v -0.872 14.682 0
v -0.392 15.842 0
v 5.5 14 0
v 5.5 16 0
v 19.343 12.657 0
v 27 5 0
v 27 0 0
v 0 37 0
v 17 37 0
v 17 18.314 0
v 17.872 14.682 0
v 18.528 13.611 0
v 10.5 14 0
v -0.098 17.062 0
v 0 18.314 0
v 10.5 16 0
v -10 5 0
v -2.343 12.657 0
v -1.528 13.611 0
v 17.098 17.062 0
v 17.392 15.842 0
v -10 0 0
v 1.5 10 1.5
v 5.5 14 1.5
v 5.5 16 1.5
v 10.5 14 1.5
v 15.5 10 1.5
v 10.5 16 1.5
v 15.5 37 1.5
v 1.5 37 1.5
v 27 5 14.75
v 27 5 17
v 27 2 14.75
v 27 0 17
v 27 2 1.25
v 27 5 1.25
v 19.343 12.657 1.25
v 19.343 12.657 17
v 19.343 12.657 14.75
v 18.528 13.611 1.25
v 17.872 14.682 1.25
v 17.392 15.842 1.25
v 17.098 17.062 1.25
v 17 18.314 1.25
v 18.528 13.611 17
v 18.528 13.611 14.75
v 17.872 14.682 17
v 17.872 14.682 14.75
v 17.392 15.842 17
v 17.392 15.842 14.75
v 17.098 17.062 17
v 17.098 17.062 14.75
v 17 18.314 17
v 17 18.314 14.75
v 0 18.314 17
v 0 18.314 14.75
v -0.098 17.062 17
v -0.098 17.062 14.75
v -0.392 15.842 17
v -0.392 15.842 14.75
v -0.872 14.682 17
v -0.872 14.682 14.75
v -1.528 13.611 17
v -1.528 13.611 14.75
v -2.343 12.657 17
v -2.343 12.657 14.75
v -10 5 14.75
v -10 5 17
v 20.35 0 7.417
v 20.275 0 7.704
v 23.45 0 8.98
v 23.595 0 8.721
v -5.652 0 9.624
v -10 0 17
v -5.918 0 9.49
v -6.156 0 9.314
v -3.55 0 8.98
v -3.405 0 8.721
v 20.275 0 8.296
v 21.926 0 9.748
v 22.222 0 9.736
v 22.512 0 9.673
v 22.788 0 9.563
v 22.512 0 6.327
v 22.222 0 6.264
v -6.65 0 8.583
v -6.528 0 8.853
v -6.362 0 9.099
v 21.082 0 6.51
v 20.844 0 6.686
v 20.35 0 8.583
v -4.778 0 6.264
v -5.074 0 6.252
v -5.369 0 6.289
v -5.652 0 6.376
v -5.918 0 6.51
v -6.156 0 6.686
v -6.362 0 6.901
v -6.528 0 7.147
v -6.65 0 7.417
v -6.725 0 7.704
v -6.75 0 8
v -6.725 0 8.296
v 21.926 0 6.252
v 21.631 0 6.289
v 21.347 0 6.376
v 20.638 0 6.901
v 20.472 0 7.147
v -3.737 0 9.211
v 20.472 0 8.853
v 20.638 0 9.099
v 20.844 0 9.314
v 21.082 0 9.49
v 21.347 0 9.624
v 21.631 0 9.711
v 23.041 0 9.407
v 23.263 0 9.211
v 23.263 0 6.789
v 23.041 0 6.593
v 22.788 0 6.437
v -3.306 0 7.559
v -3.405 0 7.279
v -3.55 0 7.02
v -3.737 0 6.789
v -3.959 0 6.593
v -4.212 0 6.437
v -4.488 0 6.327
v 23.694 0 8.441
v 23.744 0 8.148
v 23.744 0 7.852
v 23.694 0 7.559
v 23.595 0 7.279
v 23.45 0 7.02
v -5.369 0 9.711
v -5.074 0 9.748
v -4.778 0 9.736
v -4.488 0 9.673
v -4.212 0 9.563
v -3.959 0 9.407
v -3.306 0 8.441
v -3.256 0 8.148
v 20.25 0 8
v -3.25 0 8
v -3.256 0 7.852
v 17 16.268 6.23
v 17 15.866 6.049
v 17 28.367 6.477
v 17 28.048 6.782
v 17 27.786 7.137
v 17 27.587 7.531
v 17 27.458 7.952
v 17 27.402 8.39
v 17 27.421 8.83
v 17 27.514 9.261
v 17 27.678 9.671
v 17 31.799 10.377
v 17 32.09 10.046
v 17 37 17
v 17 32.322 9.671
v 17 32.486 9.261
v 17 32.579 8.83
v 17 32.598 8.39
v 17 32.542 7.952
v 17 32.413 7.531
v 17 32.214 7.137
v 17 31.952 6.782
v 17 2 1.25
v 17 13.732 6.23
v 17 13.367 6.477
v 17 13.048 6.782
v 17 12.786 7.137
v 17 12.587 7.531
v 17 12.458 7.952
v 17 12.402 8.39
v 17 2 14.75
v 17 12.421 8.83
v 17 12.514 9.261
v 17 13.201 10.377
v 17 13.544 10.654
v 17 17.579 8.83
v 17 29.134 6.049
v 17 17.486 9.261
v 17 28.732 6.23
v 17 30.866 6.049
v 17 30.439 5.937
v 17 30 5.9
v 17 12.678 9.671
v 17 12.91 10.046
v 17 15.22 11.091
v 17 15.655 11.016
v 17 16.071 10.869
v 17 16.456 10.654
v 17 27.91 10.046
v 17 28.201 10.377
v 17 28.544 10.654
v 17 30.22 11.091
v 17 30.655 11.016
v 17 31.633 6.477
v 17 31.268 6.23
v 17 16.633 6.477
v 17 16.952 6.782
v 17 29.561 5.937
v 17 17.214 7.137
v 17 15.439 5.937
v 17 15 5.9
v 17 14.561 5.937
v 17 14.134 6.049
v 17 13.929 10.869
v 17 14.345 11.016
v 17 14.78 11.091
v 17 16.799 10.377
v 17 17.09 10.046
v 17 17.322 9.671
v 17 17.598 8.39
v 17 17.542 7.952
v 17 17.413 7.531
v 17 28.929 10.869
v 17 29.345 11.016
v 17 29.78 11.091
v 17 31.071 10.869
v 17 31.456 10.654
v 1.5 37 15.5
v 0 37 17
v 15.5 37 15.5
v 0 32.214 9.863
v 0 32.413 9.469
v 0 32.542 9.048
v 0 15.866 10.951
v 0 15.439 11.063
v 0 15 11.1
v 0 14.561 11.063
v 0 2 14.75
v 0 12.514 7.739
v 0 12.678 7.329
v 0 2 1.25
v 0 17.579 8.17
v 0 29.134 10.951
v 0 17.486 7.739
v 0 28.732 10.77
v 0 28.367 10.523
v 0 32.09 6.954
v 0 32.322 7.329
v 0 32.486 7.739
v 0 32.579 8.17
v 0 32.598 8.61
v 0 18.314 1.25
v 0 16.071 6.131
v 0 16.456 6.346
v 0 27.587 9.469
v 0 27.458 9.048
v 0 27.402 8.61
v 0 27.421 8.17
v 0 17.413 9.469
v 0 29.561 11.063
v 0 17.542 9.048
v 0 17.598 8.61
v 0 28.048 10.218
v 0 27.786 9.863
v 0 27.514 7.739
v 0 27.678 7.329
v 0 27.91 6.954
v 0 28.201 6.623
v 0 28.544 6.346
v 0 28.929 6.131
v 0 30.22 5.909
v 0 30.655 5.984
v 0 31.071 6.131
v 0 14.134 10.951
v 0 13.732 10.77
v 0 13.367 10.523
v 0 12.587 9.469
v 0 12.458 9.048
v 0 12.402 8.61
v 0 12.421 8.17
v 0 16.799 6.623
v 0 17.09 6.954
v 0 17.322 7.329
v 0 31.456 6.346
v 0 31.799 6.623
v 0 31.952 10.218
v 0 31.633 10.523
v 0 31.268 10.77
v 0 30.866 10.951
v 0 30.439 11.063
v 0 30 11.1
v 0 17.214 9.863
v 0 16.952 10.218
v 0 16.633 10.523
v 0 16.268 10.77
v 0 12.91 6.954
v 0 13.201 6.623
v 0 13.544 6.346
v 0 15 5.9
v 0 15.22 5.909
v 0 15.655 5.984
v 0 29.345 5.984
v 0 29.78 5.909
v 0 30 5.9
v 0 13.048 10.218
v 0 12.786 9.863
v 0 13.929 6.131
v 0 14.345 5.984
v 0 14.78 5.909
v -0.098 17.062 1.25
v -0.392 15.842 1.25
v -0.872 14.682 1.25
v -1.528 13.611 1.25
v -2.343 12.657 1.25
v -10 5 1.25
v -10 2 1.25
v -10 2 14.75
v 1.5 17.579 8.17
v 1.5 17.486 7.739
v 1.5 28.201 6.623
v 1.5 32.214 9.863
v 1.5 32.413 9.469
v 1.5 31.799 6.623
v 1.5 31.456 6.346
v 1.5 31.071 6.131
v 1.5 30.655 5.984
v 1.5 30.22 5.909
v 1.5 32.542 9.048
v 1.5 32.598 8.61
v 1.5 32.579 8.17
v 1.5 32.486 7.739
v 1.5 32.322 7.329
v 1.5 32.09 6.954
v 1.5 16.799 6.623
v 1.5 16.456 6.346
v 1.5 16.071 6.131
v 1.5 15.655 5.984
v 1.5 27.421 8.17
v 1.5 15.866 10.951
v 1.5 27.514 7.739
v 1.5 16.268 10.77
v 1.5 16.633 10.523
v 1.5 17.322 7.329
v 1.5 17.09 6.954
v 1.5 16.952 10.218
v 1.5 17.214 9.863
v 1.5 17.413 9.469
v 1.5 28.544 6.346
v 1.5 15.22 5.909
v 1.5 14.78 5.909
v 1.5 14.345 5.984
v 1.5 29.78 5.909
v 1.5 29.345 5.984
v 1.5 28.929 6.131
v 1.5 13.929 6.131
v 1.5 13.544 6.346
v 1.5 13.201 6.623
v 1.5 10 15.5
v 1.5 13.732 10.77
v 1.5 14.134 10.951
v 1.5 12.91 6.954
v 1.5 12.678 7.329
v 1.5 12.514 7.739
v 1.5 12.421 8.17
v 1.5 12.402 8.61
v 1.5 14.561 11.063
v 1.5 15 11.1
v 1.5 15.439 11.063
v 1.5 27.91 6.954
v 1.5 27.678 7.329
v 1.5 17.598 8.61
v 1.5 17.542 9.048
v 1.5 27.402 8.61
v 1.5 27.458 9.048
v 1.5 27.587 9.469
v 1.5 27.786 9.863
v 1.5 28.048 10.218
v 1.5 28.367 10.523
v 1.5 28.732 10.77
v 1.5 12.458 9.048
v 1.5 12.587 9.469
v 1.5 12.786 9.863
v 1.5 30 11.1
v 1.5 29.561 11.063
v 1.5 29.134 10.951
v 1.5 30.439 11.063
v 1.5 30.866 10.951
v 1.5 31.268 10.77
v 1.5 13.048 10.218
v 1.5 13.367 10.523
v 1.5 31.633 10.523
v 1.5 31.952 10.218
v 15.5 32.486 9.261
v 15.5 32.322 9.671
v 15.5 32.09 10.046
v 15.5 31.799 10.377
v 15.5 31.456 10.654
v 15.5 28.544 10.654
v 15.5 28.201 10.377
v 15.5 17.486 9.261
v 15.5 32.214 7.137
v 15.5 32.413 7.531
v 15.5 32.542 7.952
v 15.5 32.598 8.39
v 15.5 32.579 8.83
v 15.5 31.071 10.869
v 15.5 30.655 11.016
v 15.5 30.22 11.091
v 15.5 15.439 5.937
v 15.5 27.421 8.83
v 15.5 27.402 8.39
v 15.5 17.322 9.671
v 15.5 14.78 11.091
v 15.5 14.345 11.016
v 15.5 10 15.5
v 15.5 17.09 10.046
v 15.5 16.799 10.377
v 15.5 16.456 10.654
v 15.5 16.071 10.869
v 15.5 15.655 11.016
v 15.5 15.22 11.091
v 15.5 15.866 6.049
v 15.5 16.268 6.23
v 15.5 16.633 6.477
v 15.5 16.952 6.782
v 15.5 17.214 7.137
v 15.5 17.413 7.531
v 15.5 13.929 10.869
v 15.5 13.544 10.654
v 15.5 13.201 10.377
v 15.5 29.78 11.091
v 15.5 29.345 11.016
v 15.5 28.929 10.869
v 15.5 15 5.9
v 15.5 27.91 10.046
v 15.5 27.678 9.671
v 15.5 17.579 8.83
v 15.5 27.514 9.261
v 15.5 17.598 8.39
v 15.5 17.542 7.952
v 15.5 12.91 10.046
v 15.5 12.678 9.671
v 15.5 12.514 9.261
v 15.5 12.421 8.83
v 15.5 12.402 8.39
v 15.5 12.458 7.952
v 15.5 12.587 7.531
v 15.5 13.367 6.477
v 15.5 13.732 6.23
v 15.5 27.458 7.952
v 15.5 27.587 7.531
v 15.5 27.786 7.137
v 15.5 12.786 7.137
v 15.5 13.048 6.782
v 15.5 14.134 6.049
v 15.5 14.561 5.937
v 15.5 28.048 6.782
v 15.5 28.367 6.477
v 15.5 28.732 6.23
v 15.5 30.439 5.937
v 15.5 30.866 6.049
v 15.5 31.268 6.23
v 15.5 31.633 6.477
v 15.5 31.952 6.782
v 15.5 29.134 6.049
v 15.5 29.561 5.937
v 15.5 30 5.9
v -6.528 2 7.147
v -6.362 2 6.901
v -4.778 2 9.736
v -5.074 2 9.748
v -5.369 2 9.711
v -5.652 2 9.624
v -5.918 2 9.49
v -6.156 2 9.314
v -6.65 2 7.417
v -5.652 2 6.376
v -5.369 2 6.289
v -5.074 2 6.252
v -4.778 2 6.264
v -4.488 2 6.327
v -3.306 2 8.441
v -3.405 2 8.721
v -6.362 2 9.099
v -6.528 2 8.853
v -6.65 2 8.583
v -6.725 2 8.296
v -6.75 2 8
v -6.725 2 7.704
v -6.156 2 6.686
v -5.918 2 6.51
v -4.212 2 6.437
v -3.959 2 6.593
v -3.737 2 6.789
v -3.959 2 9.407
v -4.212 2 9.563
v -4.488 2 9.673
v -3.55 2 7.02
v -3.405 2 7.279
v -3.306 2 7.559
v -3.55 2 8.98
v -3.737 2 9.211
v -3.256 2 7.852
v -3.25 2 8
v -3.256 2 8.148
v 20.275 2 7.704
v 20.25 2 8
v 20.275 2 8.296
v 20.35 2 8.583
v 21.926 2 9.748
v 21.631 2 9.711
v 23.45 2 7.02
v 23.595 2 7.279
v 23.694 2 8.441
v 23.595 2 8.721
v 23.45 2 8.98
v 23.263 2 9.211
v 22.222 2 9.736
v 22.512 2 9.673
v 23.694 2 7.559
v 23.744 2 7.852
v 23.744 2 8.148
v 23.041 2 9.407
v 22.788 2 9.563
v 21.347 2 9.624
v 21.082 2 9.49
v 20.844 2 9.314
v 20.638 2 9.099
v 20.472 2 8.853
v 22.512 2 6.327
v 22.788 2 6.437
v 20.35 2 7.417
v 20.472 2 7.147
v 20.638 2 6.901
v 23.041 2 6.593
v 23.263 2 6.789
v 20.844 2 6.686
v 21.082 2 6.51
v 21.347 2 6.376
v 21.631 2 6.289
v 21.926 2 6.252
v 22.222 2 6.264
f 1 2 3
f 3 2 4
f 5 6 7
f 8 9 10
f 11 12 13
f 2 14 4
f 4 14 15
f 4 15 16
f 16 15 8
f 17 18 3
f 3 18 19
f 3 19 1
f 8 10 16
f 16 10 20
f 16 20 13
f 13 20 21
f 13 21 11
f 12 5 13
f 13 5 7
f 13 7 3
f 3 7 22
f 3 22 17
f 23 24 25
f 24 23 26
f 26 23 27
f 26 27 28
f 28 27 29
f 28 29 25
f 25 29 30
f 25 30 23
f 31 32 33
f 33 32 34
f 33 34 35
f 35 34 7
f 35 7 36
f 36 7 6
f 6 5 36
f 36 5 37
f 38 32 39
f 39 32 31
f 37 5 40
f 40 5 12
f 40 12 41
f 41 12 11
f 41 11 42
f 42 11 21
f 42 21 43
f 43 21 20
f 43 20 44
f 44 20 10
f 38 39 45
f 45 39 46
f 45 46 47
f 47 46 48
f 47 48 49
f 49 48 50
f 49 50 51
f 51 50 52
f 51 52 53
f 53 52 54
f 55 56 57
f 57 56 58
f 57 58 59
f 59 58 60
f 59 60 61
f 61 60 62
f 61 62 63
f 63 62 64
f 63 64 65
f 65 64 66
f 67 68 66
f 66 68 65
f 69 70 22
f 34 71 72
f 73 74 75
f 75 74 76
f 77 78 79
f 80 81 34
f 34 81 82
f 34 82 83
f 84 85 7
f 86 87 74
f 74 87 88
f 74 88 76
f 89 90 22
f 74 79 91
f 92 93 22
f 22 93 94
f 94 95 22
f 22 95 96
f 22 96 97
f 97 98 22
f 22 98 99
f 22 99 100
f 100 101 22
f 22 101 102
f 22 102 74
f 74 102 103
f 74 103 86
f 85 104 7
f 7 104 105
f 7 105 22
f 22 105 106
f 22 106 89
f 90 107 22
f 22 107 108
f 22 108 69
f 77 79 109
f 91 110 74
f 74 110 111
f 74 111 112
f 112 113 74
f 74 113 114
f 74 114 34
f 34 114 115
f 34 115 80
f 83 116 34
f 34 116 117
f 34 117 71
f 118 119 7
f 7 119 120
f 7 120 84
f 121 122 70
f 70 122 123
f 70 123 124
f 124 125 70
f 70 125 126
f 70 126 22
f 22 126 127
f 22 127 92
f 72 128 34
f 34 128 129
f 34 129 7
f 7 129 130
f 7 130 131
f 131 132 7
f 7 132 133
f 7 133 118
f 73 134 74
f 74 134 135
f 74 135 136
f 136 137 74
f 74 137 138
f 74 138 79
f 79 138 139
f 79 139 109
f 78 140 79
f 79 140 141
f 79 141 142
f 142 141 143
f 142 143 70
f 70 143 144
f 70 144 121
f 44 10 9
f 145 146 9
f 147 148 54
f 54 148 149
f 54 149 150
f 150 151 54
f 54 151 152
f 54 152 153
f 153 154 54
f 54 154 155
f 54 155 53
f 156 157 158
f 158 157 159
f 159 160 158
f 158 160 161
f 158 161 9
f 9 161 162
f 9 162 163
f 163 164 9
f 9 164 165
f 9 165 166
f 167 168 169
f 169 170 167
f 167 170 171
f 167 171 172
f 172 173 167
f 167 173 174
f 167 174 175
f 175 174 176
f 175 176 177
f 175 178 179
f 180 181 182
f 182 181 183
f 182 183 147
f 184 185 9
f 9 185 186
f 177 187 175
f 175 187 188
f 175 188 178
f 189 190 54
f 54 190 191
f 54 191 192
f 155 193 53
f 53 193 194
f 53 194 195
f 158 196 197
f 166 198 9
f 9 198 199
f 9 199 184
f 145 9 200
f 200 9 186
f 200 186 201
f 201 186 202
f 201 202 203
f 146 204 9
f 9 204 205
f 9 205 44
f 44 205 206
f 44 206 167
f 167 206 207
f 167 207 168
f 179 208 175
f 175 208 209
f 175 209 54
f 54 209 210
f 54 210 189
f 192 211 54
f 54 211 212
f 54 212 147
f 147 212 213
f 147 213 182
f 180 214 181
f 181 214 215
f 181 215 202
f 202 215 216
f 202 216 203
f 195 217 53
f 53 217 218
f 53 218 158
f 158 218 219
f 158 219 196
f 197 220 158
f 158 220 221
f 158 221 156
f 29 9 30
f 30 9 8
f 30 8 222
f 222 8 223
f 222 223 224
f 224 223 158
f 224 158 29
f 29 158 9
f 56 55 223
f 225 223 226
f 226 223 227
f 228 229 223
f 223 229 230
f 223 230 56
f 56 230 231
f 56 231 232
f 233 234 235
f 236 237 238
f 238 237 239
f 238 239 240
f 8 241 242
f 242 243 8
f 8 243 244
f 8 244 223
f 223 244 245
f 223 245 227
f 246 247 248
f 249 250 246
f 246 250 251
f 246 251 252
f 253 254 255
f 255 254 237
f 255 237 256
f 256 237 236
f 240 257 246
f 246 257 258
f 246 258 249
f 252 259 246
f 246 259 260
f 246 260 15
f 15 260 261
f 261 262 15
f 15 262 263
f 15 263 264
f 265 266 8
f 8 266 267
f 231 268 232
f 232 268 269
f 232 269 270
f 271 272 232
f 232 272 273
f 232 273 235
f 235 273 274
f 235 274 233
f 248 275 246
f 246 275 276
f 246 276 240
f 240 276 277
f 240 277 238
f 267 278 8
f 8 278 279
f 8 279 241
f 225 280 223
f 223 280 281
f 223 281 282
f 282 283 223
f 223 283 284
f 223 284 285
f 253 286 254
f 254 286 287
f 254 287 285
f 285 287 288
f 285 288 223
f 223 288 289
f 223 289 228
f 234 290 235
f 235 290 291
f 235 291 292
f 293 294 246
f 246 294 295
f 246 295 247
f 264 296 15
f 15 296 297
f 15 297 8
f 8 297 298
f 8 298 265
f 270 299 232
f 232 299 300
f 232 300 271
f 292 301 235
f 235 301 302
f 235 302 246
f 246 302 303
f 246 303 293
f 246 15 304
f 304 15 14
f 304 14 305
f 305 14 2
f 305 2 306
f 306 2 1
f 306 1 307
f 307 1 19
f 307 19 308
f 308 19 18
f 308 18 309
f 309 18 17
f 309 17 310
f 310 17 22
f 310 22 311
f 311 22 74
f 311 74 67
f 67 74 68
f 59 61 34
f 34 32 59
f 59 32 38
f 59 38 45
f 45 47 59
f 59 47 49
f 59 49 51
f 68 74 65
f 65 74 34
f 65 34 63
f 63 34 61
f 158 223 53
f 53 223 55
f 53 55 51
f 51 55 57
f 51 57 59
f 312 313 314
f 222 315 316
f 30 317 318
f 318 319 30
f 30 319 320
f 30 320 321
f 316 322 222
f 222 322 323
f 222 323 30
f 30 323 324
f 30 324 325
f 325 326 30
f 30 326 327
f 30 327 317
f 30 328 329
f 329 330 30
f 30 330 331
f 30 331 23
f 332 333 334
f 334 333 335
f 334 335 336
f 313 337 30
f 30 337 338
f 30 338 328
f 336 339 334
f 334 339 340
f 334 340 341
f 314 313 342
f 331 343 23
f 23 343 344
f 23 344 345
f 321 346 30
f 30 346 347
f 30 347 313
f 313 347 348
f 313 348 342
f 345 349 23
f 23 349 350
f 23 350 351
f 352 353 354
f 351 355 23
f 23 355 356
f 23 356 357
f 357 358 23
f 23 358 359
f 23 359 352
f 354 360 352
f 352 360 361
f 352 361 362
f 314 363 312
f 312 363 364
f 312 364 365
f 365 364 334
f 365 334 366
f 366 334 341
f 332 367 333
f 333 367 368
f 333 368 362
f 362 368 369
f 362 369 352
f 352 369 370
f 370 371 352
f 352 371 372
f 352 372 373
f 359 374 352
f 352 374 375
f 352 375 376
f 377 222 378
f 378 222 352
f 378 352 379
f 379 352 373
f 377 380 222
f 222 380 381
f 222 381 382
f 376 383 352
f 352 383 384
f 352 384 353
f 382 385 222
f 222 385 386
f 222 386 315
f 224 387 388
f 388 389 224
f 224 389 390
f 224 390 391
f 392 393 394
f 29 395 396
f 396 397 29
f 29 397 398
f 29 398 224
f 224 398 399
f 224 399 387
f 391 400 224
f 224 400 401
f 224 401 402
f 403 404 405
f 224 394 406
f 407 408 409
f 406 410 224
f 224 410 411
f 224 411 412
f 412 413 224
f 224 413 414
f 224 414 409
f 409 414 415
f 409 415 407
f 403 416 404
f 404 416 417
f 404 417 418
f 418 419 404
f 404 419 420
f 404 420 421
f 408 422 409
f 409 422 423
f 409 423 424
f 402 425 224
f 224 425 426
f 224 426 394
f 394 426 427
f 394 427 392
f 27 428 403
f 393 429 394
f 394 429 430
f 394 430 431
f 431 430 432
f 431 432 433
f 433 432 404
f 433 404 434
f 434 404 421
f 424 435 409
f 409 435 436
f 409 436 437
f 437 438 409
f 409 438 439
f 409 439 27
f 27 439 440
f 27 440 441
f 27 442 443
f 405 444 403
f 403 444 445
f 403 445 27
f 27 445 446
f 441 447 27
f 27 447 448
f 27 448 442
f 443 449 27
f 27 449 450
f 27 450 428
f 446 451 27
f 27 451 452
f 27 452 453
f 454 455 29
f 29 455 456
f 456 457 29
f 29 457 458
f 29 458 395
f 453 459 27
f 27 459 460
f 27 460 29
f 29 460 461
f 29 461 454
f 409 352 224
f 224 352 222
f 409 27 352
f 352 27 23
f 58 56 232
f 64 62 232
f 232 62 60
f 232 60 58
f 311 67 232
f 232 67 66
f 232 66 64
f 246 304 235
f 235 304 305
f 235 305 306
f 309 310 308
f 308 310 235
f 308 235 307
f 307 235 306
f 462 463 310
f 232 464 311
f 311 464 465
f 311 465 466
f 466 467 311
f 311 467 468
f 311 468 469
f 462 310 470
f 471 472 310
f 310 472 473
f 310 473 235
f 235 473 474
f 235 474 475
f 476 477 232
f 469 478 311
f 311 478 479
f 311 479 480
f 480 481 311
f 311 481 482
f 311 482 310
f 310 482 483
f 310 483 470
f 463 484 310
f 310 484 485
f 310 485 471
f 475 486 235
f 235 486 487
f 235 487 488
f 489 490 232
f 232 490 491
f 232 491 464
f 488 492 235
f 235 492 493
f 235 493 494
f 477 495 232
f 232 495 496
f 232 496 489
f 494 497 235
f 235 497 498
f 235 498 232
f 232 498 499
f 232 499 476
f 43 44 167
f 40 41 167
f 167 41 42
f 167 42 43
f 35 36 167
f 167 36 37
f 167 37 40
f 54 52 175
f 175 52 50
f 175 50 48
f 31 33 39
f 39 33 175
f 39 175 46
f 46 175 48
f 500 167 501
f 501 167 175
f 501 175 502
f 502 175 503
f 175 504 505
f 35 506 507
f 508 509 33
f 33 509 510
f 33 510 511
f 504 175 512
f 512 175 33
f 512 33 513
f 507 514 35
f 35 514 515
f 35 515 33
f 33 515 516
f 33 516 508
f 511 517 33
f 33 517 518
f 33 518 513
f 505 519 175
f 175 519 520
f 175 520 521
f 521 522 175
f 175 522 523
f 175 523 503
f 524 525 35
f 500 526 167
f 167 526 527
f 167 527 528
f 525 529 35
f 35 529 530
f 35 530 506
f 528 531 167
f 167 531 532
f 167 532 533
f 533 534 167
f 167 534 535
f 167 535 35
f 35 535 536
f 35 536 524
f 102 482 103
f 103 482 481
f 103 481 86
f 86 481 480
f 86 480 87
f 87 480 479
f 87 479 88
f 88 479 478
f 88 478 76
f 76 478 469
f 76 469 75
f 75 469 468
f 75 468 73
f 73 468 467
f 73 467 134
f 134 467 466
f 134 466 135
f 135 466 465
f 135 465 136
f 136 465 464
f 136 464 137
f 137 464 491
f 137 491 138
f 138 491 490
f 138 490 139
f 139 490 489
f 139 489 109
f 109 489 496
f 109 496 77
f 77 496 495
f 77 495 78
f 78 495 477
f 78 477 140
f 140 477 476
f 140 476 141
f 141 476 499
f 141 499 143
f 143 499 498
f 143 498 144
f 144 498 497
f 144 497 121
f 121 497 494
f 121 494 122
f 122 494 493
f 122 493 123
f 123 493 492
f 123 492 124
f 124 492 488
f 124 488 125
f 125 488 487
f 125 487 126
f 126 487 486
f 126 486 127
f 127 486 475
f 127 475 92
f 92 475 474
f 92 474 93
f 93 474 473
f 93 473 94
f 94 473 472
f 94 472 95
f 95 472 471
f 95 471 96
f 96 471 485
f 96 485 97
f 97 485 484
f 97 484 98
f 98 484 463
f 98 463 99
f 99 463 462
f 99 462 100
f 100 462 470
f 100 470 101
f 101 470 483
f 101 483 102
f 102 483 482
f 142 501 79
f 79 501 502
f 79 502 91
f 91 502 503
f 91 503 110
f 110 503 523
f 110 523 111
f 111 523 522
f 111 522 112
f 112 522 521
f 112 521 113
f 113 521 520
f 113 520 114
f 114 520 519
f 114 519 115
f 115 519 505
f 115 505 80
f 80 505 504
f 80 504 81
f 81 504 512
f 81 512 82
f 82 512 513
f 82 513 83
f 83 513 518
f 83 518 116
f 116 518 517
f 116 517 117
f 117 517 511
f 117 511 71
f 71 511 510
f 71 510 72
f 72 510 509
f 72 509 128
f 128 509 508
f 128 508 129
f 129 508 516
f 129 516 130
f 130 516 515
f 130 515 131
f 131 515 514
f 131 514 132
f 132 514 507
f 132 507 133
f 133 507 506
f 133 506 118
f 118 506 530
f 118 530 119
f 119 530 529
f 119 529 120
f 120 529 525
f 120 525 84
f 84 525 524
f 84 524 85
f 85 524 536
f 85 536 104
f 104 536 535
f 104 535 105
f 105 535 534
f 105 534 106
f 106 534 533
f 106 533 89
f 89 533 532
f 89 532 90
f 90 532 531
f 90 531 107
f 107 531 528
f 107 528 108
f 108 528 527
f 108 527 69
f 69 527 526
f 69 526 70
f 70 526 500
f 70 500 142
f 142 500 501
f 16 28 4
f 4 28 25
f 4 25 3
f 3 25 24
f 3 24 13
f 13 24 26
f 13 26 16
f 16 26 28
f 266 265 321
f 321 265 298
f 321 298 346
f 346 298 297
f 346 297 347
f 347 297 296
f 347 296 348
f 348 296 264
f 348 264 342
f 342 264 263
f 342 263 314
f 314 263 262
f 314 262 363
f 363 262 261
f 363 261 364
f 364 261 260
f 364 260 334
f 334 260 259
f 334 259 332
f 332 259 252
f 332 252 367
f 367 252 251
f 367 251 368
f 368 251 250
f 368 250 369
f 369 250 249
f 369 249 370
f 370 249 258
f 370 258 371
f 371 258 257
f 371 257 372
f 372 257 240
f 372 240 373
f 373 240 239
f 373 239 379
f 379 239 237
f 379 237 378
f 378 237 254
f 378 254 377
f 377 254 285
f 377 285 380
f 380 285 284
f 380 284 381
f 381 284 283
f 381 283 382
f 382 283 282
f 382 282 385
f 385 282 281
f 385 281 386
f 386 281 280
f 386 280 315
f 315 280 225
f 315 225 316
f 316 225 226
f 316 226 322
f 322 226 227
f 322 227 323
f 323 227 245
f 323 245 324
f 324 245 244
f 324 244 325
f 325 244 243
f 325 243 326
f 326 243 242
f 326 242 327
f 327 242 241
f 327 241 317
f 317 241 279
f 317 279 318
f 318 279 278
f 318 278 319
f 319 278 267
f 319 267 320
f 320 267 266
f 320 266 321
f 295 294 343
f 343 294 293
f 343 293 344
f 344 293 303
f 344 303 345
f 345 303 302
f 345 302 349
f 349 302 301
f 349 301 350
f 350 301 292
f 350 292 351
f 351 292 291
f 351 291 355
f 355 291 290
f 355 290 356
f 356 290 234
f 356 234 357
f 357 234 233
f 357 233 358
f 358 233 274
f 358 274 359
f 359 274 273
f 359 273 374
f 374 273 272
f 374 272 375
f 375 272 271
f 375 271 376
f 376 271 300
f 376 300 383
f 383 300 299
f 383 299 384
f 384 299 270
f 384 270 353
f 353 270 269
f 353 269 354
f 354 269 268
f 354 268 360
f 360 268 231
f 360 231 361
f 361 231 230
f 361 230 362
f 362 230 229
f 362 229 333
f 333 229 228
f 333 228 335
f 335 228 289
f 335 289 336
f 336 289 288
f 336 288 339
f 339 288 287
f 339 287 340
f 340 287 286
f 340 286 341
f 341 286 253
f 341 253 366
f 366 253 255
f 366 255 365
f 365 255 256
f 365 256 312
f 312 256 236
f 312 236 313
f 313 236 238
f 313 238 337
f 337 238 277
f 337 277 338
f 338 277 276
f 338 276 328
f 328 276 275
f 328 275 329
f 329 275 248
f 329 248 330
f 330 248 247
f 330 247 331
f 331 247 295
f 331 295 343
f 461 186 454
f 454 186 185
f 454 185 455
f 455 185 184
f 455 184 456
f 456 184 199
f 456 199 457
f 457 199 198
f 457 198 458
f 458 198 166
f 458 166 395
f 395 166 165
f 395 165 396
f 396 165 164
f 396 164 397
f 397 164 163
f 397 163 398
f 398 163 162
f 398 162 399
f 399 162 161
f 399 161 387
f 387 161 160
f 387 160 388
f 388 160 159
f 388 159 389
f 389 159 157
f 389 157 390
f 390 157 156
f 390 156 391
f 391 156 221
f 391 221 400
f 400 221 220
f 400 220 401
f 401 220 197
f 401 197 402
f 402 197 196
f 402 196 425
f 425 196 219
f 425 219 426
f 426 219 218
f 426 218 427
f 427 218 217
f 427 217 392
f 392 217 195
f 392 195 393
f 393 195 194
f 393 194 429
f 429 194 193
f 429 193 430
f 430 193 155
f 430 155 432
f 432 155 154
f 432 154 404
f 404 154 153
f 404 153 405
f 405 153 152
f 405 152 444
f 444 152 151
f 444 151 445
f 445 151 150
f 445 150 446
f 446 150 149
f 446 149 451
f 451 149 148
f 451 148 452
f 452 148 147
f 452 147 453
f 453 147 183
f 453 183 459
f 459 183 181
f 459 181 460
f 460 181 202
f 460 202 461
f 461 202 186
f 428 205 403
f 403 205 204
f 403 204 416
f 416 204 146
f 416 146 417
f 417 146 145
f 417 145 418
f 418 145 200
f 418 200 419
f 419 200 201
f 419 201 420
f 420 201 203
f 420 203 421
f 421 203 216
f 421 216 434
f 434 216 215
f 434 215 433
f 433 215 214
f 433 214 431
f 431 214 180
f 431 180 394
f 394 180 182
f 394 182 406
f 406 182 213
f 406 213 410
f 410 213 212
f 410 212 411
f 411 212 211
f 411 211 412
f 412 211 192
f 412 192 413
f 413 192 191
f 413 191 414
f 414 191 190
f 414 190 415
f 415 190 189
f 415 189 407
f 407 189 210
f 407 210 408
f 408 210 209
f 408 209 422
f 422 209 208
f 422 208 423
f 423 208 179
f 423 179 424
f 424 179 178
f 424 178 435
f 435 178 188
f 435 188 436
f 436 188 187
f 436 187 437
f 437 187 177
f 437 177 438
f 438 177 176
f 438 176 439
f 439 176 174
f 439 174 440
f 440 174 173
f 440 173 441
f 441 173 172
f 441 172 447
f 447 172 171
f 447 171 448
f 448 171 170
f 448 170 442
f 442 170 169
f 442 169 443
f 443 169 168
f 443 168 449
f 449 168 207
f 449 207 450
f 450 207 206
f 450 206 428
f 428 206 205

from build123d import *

# Parameters (mm, degrees)
BASE_SHAPE_DEPTH      = 17
SKETCH2_W             = 14
SKETCH2_H             = 14
CENTER_SLOT_DEPTH     = 27
SKETCH4_W             = 10
SKETCH4_H             = 13.5
WING_CUT_OUTS_DEPTH   = 16.5
SKETCH5_R             = 1.75
WING_HOLES_DEPTH      = 48.360320945
WIRE_SLOT_REACH       = 50.857
SKETCH6_W             = 5
SKETCH6_H             = 2
LOAD_CELL_HOLES_REACH = 50.857
SKETCH7_R             = 2.6


with BuildPart() as part:
    # Sketch1 → Base Shape (new body)
    with BuildSketch(Plane.XY):
        with BuildLine():
            Line((0, 18.313708499), (0, 37))
            Line((0, 37), (17, 37))
            Line((17, 37), (17, 18.313708499))
            ThreePointArc((17, 18.313708499), (17.60896374, 15.25224104), (19.343145751, 12.656854249))
            Line((19.343145751, 12.656854249), (27, 5))
            Line((27, 5), (27, 0))
            Line((27, 0), (17, 0))
            Line((17, 0), (0, 0))
            Line((0, 0), (-10, 0))
            Line((-10, 0), (-10, 5))
            Line((-10, 5), (-2.343145751, 12.656854249))
            ThreePointArc((-2.343145751, 12.656854249), (-0.60896374, 15.25224104), (0, 18.313708499))
        make_face()
    extrude(amount=BASE_SHAPE_DEPTH)

    # Sketch2 → Center Slot (cut)
    with BuildSketch(Plane(origin=(0, 37, 0), x_dir=(1, 0, 0), z_dir=(0, 1, 0))):
        with Locations((8.5, -8.5)):
            Rectangle(SKETCH2_W, SKETCH2_H)
    extrude(amount=-CENTER_SLOT_DEPTH, mode=Mode.SUBTRACT)

    # Sketch4 → Wing Cut Outs (cut)
    with BuildSketch(Plane(origin=(0, 2, 0), x_dir=(-1, 0, 0), z_dir=(0, -1, 0))):
        with Locations((5, -8)):
            Rectangle(SKETCH4_W, SKETCH4_H)
    wing_cut_outs = extrude(amount=-WING_CUT_OUTS_DEPTH, mode=Mode.SUBTRACT)

    # Mirror1: Wing Cut Outs across plane
    add(wing_cut_outs.mirror(Plane(origin=(8.5, 0, 0), x_dir=(0, 0, 1), z_dir=(1, 0, 0))), mode=Mode.SUBTRACT)

    # Sketch5 → Wing Holes (cut, through all)
    with BuildSketch(Plane(origin=(0, 2, 0), x_dir=(-1, 0, 0), z_dir=(0, -1, 0))):
        with Locations(Location((5, -8, 0), (0, 0, 180))):
            Circle(SKETCH5_R)
    wing_holes = extrude(amount=WING_HOLES_DEPTH, mode=Mode.SUBTRACT)

    # Mirror2: Wing Holes across plane
    add(wing_holes.mirror(Plane(origin=(8.5, 0, 0), x_dir=(0, 0, 1), z_dir=(1, 0, 0))), mode=Mode.SUBTRACT)

    # Sketch6 → Wire Slot (cut, up to next)
    with BuildSketch(Plane.XY, mode=Mode.PRIVATE) as wire_slot_sk1:
        with Locations((8, 15)):
            Rectangle(SKETCH6_W, SKETCH6_H)
    wire_slot_tool1 = extrude(wire_slot_sk1.sketch, amount=WIRE_SLOT_REACH, mode=Mode.PRIVATE) & part.part
    add(wire_slot_tool1.solids().sort_by_distance((8, 15, 0))[0], mode=Mode.SUBTRACT)

    # Sketch7 → Load Cell Holes (cut, up to next)
    with BuildSketch(Plane(origin=(0, 0, 0), x_dir=(0, 0, -1), z_dir=(1, 0, 0)), mode=Mode.PRIVATE) as load_cell_holes_sk1:
        with Locations(Location((-8.5, 15, 0), (0, 0, 180))):
            Circle(SKETCH7_R)
    load_cell_holes_tool1 = extrude(load_cell_holes_sk1.sketch, amount=LOAD_CELL_HOLES_REACH, mode=Mode.PRIVATE) & part.part
    # Sketch7 → Load Cell Holes (cut, up to next)
    with BuildSketch(Plane(origin=(0, 0, 0), x_dir=(0, 0, -1), z_dir=(1, 0, 0)), mode=Mode.PRIVATE) as load_cell_holes_sk2:
        with Locations(Location((-8.5, 30, 0), (0, 0, 180))):
            Circle(SKETCH7_R)
    load_cell_holes_tool2 = extrude(load_cell_holes_sk2.sketch, amount=LOAD_CELL_HOLES_REACH, mode=Mode.PRIVATE) & part.part
    load_cell_holes_1 = load_cell_holes_tool1.solids().sort_by_distance((0, 15, 8.5))[0]
    add(load_cell_holes_1, mode=Mode.SUBTRACT)
    load_cell_holes_2 = load_cell_holes_tool2.solids().sort_by_distance((0, 30, 8.5))[0]
    add(load_cell_holes_2, mode=Mode.SUBTRACT)
    load_cell_holes = load_cell_holes_1 + load_cell_holes_2  # Load Cell Holes as one shape, for the pattern or mirror that repeats it

    # Mirror3: Load Cell Holes across plane
    add(load_cell_holes.mirror(Plane(origin=(8.5, 0, 0), x_dir=(0, 0, 1), z_dir=(1, 0, 0))), mode=Mode.SUBTRACT)


solid = part.part
